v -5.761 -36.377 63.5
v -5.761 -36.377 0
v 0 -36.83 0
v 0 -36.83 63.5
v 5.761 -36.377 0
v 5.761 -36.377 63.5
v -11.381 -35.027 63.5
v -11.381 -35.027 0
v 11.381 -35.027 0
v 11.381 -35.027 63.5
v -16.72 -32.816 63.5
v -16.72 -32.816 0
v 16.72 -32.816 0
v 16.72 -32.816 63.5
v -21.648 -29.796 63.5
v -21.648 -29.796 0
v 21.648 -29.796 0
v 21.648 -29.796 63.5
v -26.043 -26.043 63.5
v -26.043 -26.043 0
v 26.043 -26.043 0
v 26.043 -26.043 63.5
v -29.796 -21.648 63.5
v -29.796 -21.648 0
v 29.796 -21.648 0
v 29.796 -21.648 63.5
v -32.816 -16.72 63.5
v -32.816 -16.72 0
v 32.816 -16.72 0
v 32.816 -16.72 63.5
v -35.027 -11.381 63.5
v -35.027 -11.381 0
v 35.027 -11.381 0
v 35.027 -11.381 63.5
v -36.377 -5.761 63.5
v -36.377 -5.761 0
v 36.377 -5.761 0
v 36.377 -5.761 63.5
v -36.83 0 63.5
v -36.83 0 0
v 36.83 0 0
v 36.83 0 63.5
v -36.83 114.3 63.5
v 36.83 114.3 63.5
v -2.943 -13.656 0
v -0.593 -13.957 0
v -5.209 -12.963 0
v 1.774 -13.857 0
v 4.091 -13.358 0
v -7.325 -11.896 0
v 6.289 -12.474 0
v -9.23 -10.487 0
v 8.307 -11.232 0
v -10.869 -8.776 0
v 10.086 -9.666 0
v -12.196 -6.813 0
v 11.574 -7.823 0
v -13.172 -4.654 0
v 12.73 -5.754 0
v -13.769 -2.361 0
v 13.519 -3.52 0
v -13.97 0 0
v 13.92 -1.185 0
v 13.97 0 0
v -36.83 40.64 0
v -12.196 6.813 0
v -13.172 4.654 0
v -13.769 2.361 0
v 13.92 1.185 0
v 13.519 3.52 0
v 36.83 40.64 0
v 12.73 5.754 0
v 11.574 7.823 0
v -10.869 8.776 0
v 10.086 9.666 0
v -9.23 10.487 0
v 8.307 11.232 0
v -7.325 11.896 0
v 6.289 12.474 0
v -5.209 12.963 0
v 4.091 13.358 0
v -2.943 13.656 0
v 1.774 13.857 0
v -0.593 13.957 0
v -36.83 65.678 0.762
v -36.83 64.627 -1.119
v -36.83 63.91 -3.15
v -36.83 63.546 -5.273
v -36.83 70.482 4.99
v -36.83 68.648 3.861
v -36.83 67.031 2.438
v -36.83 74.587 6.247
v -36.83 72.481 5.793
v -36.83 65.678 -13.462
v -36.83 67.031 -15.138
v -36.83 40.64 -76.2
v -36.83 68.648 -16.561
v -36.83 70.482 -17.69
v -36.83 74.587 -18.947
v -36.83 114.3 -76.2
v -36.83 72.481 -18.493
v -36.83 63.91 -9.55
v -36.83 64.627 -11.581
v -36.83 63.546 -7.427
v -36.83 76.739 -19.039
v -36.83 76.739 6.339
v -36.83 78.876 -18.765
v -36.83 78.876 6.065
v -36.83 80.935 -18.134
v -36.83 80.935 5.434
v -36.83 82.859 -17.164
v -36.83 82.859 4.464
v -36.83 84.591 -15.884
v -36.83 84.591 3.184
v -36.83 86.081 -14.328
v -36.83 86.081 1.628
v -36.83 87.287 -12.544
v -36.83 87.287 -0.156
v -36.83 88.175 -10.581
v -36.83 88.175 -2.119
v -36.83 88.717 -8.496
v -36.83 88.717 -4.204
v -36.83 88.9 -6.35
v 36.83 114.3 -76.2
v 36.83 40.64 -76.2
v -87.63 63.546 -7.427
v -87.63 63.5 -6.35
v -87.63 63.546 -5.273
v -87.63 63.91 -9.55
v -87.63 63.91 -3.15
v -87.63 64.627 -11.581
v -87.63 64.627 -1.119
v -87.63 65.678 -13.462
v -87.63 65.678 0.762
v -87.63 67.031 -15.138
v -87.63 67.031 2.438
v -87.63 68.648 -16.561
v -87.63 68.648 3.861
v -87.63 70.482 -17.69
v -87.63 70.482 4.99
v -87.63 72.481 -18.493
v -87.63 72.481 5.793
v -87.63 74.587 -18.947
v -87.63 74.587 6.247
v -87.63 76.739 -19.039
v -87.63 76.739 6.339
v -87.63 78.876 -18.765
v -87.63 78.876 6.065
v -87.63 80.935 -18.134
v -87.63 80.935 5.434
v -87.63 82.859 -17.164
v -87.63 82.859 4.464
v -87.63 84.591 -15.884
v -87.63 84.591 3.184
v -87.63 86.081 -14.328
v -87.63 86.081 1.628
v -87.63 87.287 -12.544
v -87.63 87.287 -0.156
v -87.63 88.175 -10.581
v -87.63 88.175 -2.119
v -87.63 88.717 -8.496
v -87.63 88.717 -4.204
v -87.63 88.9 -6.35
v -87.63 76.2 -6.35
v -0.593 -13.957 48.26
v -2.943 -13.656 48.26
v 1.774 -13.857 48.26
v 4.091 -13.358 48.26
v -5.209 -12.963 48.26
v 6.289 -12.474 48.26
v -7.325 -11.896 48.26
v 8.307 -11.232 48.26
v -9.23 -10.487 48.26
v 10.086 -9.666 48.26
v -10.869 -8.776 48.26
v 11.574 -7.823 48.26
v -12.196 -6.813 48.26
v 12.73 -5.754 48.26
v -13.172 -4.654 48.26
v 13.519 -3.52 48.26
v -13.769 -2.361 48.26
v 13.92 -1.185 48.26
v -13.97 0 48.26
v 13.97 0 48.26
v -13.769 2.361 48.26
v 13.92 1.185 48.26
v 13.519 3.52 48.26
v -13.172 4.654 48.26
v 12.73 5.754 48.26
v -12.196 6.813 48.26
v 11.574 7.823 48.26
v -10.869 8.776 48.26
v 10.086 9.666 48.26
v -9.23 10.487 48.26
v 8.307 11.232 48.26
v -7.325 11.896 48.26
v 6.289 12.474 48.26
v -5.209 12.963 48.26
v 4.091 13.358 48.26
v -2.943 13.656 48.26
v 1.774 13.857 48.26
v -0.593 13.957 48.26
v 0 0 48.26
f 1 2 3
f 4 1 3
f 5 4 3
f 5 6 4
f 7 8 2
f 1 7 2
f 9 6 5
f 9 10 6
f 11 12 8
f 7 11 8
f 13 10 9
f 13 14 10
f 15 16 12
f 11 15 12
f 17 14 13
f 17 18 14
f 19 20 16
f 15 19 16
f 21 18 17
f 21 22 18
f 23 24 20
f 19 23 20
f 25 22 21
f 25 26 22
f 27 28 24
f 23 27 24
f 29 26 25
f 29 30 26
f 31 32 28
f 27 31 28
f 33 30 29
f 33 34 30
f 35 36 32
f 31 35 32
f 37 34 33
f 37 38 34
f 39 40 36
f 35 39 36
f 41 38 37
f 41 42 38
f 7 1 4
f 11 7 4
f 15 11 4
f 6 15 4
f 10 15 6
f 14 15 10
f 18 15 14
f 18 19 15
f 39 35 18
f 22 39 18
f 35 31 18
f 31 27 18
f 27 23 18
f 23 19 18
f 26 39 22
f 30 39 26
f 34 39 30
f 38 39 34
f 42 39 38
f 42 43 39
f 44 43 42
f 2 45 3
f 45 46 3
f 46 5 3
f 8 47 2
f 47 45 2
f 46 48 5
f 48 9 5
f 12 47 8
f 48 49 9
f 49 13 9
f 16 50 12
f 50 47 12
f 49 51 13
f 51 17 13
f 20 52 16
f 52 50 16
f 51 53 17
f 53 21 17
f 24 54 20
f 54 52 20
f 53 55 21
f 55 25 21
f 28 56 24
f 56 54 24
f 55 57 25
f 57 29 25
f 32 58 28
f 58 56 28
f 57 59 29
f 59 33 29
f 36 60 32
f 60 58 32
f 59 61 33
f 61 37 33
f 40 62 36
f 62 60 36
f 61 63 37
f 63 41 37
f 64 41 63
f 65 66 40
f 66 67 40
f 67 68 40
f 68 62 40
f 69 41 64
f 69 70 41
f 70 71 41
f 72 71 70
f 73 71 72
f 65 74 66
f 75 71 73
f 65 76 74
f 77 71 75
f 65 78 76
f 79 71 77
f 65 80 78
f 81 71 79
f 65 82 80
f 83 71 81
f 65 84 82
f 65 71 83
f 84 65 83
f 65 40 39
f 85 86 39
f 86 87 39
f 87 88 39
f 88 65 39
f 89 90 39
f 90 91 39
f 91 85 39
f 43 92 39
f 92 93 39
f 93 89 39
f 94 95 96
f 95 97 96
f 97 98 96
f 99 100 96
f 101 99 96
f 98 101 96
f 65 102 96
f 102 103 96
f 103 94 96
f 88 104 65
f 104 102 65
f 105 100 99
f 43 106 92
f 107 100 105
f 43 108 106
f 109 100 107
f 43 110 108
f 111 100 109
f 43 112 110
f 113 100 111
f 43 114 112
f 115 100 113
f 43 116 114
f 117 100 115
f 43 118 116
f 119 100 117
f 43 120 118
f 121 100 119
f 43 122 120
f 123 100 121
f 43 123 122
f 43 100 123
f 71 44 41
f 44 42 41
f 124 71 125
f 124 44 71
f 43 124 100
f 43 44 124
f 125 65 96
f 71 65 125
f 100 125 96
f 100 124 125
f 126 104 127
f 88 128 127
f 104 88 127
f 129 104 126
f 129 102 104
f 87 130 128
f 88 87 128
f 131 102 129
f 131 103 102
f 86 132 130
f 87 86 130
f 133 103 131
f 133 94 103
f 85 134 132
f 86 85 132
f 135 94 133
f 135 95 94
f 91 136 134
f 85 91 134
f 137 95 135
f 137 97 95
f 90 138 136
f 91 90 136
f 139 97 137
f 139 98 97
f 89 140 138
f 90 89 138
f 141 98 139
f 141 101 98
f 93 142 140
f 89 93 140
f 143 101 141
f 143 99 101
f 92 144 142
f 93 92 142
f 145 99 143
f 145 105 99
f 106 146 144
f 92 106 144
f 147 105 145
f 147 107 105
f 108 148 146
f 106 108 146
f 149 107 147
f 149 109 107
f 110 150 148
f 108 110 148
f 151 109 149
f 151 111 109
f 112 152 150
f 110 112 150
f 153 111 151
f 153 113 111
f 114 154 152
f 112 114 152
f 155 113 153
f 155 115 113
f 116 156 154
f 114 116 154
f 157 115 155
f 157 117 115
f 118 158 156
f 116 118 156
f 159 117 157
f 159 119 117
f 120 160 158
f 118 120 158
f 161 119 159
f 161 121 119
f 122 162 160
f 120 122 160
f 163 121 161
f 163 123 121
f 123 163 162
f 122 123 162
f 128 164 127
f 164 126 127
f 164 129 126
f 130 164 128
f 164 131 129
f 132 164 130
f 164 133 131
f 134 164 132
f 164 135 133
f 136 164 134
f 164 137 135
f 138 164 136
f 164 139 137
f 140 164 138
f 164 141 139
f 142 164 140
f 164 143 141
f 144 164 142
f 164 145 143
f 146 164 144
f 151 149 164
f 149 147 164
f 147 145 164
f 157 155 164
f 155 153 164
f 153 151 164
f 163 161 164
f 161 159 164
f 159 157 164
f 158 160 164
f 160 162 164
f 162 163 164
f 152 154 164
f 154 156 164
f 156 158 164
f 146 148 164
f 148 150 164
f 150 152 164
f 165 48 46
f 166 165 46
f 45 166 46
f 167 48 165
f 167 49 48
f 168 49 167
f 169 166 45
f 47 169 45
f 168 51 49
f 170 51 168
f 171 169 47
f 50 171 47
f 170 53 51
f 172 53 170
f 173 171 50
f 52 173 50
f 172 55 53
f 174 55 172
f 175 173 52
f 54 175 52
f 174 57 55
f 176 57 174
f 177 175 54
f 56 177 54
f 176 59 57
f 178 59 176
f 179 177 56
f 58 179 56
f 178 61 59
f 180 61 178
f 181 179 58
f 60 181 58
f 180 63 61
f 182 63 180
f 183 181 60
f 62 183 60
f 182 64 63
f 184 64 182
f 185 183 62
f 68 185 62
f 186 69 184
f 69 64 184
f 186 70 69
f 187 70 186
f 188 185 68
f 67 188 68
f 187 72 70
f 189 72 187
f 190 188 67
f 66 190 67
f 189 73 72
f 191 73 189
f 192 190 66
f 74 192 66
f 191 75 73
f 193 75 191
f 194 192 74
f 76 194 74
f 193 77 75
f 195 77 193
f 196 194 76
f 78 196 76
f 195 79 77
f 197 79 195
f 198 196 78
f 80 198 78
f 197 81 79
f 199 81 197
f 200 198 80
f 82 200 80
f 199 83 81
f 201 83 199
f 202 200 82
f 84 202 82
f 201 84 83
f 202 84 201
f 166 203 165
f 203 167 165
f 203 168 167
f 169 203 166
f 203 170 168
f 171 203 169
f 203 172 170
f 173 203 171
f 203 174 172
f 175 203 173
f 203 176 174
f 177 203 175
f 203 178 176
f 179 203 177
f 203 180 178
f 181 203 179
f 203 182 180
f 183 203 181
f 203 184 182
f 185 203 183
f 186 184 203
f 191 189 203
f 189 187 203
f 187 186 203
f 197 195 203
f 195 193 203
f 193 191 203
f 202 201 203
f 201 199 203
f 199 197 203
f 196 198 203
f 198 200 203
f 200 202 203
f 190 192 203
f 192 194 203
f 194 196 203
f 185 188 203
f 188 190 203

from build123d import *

# Parameters (mm, degrees)
SKETCH1_R           = 36.83
BOSS_EXTRUDE1_DEPTH = 63.5
SKETCH4_W           = 73.66
SKETCH4_H           = 114.3
BOSS_EXTRUDE2_DEPTH = 63.5
SKETCH5_W           = 73.66
SKETCH5_H           = 73.66
BOSS_EXTRUDE3_DEPTH = 76.2
SKETCH6_R           = 12.7
BOSS_EXTRUDE4_DEPTH = 50.8
SKETCH2_R           = 13.97
CUT_EXTRUDE1_DEPTH  = 48.26


with BuildPart() as part:
    # Sketch1 → Boss-Extrude1 (new body)
    with BuildSketch(Plane.XY):
        Circle(SKETCH1_R)
    extrude(amount=BOSS_EXTRUDE1_DEPTH)

    # Sketch4 → Boss-Extrude2 (add, through all)
    with BuildSketch(Plane.XY):
        with Locations((0, 57.15)):
            Rectangle(SKETCH4_W, SKETCH4_H)
    extrude(amount=BOSS_EXTRUDE2_DEPTH)

    # Sketch5 → Boss-Extrude3 (add)
    with BuildSketch(Plane.XY):
        with Locations((0, 77.47)):
            Rectangle(SKETCH5_W, SKETCH5_H)
    extrude(amount=-BOSS_EXTRUDE3_DEPTH)

    # Sketch6 → Boss-Extrude4 (add)
    with BuildSketch(Plane.ZY.offset(36.83)):
        with Locations(Location((-6.35, 76.2, 0), (0, 0, 90))):
            Circle(SKETCH6_R)
    extrude(amount=BOSS_EXTRUDE4_DEPTH)

    # Sketch2 → Cut-Extrude1 (cut)
    with BuildSketch(Plane.XY):
        with Locations(Location((0, 0, 0), (0, 0, 180))):
            Circle(SKETCH2_R)
    extrude(amount=CUT_EXTRUDE1_DEPTH, mode=Mode.SUBTRACT)


solid = part.part
